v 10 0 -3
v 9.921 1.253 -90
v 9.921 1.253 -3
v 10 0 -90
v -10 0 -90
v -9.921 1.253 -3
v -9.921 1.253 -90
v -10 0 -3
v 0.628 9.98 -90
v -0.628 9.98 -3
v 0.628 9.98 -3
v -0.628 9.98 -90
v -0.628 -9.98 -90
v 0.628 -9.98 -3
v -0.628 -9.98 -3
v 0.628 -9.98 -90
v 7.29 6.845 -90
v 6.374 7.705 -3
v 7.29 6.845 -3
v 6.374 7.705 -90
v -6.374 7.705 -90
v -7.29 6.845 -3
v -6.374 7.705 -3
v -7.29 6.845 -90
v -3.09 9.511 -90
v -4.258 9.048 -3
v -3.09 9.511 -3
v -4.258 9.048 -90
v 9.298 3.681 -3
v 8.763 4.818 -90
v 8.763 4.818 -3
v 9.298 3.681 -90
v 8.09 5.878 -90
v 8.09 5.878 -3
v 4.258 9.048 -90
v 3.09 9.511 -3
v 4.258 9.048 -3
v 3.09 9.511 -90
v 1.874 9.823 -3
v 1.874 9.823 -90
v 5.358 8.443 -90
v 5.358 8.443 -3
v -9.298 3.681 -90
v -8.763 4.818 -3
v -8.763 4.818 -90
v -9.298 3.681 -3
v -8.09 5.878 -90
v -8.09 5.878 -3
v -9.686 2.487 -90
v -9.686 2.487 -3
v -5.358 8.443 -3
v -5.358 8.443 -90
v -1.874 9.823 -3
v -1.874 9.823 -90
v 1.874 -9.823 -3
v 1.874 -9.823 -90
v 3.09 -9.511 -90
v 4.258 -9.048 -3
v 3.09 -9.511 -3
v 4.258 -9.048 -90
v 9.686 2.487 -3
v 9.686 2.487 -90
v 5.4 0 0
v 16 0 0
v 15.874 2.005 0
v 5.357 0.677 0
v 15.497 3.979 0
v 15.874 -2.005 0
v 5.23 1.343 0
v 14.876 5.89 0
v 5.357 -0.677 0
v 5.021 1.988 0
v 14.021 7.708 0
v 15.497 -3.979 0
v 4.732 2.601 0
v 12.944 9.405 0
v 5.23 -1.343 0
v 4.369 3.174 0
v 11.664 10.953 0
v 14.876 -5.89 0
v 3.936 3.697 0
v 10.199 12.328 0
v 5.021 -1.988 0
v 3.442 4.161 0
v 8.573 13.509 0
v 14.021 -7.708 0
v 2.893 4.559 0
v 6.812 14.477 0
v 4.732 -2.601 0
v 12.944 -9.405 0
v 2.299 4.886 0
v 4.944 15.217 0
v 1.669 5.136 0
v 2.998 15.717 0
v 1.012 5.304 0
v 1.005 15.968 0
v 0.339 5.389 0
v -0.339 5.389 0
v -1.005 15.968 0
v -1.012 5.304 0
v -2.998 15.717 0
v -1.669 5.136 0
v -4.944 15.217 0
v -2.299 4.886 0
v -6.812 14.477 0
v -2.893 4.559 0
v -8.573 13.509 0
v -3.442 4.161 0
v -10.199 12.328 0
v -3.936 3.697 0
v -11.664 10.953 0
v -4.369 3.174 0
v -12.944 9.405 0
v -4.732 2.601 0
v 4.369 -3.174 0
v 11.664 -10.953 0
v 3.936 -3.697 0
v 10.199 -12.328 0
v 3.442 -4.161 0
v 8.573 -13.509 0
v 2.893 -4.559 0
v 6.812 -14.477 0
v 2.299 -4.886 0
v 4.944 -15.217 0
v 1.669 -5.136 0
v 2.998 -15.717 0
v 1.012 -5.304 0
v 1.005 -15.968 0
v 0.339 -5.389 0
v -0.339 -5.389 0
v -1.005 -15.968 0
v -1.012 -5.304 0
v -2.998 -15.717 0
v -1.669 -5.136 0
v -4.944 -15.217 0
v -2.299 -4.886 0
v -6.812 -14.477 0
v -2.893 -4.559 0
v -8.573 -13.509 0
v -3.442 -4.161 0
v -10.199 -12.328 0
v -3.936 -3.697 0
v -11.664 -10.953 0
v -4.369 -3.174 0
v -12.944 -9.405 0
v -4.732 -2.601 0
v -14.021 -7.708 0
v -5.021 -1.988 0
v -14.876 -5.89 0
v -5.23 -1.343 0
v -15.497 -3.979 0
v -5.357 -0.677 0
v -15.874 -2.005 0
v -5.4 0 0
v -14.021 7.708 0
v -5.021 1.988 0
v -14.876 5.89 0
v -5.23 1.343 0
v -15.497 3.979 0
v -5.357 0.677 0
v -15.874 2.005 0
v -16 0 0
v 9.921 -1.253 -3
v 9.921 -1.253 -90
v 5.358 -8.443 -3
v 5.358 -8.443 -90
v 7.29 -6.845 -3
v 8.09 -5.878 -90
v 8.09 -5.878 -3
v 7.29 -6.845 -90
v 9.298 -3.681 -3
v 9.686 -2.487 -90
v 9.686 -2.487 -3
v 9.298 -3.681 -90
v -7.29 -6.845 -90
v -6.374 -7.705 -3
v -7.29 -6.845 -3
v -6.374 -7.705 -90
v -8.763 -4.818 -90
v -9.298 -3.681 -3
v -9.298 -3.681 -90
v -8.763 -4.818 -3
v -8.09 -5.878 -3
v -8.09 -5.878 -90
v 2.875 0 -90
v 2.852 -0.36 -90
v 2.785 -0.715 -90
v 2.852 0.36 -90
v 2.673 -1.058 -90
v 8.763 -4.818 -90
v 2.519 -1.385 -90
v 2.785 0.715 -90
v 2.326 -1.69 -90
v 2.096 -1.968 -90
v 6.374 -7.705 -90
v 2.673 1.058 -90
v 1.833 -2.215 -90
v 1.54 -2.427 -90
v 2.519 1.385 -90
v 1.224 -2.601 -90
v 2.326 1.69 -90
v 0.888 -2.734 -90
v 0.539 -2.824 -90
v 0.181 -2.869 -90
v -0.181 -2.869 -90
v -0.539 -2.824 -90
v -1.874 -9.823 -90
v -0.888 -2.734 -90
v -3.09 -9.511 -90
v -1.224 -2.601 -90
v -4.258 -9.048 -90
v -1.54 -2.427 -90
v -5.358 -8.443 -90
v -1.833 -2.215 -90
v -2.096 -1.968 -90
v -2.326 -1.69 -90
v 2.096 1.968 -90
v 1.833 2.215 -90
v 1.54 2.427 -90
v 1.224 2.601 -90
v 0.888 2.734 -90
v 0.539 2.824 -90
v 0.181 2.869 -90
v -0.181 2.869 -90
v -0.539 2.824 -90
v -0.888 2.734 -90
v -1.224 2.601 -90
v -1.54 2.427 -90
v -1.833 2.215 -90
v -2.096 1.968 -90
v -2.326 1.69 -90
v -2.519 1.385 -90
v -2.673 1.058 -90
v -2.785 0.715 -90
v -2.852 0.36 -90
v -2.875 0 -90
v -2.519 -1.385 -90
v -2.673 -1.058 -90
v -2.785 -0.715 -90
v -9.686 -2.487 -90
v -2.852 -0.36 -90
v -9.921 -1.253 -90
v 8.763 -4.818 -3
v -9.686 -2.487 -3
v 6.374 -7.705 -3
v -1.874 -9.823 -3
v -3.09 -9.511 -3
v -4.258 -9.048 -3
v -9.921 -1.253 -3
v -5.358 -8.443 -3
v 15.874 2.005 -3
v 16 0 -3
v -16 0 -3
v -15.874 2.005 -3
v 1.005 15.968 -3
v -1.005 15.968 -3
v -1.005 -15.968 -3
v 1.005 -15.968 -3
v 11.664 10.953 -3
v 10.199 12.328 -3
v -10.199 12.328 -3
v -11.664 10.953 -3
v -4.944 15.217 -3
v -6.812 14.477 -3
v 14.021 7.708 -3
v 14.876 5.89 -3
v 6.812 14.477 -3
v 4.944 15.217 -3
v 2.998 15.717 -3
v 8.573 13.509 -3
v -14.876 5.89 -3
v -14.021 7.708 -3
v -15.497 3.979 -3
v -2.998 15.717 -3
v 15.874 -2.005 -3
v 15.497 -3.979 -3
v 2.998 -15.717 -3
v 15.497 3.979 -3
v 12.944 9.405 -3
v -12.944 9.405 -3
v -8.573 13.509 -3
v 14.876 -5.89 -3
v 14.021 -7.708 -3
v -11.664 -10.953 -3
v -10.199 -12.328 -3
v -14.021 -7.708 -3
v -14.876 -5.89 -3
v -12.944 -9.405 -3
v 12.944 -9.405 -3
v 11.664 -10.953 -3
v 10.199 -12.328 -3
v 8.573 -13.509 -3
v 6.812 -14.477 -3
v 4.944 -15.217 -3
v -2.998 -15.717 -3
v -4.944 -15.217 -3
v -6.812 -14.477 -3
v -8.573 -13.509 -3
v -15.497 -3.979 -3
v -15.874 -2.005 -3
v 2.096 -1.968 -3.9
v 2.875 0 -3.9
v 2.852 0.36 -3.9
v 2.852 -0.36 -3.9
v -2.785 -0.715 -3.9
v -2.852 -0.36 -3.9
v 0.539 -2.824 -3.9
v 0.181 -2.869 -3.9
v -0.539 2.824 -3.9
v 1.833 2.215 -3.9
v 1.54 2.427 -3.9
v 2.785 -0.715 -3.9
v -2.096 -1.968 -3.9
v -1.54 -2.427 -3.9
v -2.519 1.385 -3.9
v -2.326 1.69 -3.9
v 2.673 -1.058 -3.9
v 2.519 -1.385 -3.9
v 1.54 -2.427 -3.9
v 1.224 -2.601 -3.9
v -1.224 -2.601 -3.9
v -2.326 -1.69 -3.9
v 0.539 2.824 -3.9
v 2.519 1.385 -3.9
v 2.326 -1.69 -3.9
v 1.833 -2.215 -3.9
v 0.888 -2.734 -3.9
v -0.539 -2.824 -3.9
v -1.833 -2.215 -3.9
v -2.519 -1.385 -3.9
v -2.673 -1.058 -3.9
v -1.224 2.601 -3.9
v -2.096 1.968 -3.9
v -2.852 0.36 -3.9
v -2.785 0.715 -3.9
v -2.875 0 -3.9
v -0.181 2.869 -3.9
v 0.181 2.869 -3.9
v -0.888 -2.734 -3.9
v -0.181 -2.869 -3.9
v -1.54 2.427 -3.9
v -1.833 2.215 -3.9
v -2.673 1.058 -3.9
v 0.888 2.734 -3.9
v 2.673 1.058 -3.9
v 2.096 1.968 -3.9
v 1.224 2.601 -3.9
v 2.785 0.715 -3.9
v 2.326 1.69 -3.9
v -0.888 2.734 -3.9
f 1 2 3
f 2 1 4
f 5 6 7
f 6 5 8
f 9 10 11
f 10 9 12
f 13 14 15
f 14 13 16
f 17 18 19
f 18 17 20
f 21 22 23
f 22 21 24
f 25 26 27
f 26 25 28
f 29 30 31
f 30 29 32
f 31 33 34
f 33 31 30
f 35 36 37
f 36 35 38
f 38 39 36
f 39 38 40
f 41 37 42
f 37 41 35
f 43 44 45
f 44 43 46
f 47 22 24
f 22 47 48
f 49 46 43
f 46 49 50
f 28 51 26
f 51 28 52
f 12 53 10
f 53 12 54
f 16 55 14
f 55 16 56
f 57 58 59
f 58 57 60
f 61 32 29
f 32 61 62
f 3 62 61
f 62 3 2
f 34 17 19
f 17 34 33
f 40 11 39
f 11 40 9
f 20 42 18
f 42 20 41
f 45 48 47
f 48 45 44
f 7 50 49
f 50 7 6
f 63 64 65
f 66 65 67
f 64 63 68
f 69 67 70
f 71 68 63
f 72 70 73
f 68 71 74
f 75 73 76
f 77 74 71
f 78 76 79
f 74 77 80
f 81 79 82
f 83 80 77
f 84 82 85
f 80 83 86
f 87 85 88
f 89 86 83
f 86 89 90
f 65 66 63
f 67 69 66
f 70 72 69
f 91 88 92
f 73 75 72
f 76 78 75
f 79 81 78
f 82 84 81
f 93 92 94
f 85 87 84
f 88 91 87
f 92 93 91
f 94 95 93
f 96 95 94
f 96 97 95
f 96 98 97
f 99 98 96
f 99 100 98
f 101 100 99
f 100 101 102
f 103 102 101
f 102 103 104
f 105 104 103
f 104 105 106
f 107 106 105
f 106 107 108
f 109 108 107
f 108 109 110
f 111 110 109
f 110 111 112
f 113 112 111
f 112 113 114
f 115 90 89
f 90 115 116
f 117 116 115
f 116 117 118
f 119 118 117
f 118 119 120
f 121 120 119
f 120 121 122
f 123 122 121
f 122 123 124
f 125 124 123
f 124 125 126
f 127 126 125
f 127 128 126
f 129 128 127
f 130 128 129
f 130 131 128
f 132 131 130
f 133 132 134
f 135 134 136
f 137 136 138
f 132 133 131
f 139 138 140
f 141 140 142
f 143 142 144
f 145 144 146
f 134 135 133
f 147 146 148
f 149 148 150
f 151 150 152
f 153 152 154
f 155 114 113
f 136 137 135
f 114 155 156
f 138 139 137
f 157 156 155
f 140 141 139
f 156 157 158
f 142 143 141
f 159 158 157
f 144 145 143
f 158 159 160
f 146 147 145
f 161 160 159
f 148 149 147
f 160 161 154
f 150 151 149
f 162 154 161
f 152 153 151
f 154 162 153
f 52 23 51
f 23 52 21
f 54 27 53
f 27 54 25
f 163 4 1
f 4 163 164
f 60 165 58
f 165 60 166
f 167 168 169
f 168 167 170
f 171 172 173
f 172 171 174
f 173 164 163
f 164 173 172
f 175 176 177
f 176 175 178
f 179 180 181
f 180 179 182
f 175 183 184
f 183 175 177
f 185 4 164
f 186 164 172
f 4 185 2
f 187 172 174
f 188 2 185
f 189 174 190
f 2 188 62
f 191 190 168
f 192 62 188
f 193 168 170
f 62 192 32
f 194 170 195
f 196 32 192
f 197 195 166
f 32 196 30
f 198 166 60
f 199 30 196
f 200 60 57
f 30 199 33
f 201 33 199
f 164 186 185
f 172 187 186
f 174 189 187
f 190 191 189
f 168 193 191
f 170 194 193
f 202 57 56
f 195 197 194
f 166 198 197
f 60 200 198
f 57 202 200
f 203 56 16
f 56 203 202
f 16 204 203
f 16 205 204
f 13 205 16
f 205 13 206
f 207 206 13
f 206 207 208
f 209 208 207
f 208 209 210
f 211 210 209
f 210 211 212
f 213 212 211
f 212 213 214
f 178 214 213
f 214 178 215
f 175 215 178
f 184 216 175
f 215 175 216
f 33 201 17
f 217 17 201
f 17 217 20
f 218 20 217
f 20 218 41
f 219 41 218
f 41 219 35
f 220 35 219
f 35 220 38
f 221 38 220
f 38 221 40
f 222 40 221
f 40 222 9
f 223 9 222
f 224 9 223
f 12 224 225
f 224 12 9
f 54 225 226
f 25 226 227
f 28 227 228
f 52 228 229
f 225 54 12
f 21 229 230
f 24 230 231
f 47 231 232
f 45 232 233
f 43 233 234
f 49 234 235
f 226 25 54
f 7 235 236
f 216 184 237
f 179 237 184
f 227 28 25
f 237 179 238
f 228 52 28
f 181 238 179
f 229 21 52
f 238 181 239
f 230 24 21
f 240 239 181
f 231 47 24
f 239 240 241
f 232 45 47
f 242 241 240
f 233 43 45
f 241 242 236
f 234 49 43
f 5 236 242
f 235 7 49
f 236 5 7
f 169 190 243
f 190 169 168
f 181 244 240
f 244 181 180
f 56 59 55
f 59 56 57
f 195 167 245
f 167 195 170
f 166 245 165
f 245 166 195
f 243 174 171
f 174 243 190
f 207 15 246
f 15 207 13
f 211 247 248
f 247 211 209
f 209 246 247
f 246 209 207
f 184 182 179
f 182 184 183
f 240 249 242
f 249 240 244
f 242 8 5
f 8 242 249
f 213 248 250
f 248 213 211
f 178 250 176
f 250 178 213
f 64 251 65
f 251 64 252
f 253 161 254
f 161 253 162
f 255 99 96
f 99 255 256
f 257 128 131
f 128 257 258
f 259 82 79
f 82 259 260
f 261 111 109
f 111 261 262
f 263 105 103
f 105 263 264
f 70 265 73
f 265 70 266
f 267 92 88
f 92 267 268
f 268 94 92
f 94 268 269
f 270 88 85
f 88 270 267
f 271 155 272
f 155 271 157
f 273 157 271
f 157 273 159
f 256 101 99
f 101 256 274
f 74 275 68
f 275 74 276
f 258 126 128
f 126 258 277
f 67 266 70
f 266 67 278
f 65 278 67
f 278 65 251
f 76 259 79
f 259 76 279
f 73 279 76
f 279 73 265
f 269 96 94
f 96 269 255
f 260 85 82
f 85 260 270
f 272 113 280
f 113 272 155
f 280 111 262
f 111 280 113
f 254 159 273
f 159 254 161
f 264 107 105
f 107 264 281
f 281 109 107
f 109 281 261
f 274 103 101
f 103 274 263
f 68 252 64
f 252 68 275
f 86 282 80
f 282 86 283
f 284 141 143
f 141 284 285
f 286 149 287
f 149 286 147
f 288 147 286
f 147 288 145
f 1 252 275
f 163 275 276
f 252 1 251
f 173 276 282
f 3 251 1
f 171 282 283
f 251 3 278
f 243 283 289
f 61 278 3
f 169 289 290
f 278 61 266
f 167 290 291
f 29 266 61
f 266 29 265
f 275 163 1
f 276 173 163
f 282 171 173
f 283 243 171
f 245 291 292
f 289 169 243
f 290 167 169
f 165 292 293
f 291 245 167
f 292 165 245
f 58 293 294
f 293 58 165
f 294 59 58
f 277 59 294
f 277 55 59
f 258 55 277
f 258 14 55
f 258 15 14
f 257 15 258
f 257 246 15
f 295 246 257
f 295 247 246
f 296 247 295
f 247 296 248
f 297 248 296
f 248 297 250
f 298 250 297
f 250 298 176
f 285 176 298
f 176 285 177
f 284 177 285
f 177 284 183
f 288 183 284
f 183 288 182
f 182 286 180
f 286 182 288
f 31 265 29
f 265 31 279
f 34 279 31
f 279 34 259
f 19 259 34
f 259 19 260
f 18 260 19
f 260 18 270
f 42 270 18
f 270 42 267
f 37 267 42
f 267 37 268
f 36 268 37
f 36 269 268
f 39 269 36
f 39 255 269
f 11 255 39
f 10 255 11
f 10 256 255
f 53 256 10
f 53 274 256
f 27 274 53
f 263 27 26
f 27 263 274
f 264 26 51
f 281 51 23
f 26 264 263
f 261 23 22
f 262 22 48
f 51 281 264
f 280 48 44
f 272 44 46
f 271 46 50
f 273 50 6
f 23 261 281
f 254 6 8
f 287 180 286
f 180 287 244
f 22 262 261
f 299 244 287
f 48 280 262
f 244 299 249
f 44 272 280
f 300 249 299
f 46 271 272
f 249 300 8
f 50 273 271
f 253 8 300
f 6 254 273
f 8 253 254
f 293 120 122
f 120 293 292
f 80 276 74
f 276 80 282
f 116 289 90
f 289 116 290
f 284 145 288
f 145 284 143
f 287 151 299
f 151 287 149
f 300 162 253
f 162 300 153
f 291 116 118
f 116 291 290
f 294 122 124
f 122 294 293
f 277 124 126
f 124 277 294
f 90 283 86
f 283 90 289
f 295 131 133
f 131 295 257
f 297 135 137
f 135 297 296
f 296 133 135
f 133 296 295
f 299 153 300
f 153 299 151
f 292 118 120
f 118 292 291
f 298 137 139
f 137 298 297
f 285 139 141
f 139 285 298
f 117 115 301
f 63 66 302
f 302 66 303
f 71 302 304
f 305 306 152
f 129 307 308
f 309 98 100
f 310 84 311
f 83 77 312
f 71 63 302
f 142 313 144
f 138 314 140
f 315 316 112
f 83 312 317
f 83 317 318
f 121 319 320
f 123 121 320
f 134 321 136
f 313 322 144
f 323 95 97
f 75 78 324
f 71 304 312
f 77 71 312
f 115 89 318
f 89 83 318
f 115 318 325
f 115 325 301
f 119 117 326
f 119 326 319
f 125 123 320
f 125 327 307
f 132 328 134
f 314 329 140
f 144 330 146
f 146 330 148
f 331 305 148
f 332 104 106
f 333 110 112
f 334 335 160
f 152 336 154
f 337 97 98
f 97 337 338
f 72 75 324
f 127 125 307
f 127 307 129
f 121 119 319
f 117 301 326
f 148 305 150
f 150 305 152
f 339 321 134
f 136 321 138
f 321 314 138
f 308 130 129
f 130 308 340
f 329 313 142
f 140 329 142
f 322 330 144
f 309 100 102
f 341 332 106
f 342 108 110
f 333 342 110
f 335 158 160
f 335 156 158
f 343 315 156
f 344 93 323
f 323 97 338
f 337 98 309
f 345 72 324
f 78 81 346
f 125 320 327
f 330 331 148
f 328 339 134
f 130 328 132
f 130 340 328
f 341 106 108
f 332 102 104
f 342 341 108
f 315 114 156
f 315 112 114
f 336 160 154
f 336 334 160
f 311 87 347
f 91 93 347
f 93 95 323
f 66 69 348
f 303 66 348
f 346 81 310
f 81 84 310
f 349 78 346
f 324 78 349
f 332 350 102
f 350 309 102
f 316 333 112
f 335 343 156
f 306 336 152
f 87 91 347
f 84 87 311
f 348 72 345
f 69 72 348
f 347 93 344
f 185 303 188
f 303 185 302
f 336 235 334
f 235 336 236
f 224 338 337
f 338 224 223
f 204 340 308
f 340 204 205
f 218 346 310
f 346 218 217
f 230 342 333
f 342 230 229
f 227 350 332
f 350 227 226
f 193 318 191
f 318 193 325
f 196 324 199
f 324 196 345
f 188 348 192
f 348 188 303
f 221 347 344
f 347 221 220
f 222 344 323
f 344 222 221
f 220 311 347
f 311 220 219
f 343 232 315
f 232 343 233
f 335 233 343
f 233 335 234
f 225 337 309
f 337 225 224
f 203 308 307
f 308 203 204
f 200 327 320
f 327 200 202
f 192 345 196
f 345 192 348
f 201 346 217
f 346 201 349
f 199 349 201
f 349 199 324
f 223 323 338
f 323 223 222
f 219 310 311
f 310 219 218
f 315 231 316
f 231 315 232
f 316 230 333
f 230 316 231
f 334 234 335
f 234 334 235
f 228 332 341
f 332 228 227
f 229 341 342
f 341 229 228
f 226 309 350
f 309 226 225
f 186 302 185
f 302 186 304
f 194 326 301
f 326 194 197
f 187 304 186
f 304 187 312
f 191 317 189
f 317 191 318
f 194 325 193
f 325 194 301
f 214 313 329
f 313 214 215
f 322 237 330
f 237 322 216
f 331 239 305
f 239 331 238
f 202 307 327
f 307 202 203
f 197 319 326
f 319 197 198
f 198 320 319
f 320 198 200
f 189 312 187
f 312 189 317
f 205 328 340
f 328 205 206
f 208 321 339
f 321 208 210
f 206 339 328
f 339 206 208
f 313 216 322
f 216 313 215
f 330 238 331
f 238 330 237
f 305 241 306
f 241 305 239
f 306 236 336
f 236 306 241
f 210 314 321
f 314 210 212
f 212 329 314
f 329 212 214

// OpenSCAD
$fn = 50;


difference() {
	union() {
		translate(v = [0, 0, -90.0000000000]) {
			cylinder(h = 90, r = 10.0000000000);
		}
		translate(v = [0, 0, -3.0000000000]) {
			cylinder(h = 3, r = 16.0000000000);
		}
	}
	union() {
		translate(v = [0, 0, 0]) {
			rotate(a = [0, 0, 0]) {
				difference() {
					union() {
						#translate(v = [0, 0, -90.0000000000]) {
							cylinder(h = 90, r = 2.6000000000);
						}
						#translate(v = [0, 0, -3.9000000000]) {
							cylinder(h = 3.9000000000, r1 = 2.8750000000, r2 = 5.4000000000);
						}
						#translate(v = [0, 0, -90.0000000000]) {
							cylinder(h = 90, r = 2.8750000000);
						}
						#translate(v = [0, 0, -90.0000000000]) {
							cylinder(h = 90, r = 2.6000000000);
						}
					}
					union();
				}
			}
		}
	}
}
